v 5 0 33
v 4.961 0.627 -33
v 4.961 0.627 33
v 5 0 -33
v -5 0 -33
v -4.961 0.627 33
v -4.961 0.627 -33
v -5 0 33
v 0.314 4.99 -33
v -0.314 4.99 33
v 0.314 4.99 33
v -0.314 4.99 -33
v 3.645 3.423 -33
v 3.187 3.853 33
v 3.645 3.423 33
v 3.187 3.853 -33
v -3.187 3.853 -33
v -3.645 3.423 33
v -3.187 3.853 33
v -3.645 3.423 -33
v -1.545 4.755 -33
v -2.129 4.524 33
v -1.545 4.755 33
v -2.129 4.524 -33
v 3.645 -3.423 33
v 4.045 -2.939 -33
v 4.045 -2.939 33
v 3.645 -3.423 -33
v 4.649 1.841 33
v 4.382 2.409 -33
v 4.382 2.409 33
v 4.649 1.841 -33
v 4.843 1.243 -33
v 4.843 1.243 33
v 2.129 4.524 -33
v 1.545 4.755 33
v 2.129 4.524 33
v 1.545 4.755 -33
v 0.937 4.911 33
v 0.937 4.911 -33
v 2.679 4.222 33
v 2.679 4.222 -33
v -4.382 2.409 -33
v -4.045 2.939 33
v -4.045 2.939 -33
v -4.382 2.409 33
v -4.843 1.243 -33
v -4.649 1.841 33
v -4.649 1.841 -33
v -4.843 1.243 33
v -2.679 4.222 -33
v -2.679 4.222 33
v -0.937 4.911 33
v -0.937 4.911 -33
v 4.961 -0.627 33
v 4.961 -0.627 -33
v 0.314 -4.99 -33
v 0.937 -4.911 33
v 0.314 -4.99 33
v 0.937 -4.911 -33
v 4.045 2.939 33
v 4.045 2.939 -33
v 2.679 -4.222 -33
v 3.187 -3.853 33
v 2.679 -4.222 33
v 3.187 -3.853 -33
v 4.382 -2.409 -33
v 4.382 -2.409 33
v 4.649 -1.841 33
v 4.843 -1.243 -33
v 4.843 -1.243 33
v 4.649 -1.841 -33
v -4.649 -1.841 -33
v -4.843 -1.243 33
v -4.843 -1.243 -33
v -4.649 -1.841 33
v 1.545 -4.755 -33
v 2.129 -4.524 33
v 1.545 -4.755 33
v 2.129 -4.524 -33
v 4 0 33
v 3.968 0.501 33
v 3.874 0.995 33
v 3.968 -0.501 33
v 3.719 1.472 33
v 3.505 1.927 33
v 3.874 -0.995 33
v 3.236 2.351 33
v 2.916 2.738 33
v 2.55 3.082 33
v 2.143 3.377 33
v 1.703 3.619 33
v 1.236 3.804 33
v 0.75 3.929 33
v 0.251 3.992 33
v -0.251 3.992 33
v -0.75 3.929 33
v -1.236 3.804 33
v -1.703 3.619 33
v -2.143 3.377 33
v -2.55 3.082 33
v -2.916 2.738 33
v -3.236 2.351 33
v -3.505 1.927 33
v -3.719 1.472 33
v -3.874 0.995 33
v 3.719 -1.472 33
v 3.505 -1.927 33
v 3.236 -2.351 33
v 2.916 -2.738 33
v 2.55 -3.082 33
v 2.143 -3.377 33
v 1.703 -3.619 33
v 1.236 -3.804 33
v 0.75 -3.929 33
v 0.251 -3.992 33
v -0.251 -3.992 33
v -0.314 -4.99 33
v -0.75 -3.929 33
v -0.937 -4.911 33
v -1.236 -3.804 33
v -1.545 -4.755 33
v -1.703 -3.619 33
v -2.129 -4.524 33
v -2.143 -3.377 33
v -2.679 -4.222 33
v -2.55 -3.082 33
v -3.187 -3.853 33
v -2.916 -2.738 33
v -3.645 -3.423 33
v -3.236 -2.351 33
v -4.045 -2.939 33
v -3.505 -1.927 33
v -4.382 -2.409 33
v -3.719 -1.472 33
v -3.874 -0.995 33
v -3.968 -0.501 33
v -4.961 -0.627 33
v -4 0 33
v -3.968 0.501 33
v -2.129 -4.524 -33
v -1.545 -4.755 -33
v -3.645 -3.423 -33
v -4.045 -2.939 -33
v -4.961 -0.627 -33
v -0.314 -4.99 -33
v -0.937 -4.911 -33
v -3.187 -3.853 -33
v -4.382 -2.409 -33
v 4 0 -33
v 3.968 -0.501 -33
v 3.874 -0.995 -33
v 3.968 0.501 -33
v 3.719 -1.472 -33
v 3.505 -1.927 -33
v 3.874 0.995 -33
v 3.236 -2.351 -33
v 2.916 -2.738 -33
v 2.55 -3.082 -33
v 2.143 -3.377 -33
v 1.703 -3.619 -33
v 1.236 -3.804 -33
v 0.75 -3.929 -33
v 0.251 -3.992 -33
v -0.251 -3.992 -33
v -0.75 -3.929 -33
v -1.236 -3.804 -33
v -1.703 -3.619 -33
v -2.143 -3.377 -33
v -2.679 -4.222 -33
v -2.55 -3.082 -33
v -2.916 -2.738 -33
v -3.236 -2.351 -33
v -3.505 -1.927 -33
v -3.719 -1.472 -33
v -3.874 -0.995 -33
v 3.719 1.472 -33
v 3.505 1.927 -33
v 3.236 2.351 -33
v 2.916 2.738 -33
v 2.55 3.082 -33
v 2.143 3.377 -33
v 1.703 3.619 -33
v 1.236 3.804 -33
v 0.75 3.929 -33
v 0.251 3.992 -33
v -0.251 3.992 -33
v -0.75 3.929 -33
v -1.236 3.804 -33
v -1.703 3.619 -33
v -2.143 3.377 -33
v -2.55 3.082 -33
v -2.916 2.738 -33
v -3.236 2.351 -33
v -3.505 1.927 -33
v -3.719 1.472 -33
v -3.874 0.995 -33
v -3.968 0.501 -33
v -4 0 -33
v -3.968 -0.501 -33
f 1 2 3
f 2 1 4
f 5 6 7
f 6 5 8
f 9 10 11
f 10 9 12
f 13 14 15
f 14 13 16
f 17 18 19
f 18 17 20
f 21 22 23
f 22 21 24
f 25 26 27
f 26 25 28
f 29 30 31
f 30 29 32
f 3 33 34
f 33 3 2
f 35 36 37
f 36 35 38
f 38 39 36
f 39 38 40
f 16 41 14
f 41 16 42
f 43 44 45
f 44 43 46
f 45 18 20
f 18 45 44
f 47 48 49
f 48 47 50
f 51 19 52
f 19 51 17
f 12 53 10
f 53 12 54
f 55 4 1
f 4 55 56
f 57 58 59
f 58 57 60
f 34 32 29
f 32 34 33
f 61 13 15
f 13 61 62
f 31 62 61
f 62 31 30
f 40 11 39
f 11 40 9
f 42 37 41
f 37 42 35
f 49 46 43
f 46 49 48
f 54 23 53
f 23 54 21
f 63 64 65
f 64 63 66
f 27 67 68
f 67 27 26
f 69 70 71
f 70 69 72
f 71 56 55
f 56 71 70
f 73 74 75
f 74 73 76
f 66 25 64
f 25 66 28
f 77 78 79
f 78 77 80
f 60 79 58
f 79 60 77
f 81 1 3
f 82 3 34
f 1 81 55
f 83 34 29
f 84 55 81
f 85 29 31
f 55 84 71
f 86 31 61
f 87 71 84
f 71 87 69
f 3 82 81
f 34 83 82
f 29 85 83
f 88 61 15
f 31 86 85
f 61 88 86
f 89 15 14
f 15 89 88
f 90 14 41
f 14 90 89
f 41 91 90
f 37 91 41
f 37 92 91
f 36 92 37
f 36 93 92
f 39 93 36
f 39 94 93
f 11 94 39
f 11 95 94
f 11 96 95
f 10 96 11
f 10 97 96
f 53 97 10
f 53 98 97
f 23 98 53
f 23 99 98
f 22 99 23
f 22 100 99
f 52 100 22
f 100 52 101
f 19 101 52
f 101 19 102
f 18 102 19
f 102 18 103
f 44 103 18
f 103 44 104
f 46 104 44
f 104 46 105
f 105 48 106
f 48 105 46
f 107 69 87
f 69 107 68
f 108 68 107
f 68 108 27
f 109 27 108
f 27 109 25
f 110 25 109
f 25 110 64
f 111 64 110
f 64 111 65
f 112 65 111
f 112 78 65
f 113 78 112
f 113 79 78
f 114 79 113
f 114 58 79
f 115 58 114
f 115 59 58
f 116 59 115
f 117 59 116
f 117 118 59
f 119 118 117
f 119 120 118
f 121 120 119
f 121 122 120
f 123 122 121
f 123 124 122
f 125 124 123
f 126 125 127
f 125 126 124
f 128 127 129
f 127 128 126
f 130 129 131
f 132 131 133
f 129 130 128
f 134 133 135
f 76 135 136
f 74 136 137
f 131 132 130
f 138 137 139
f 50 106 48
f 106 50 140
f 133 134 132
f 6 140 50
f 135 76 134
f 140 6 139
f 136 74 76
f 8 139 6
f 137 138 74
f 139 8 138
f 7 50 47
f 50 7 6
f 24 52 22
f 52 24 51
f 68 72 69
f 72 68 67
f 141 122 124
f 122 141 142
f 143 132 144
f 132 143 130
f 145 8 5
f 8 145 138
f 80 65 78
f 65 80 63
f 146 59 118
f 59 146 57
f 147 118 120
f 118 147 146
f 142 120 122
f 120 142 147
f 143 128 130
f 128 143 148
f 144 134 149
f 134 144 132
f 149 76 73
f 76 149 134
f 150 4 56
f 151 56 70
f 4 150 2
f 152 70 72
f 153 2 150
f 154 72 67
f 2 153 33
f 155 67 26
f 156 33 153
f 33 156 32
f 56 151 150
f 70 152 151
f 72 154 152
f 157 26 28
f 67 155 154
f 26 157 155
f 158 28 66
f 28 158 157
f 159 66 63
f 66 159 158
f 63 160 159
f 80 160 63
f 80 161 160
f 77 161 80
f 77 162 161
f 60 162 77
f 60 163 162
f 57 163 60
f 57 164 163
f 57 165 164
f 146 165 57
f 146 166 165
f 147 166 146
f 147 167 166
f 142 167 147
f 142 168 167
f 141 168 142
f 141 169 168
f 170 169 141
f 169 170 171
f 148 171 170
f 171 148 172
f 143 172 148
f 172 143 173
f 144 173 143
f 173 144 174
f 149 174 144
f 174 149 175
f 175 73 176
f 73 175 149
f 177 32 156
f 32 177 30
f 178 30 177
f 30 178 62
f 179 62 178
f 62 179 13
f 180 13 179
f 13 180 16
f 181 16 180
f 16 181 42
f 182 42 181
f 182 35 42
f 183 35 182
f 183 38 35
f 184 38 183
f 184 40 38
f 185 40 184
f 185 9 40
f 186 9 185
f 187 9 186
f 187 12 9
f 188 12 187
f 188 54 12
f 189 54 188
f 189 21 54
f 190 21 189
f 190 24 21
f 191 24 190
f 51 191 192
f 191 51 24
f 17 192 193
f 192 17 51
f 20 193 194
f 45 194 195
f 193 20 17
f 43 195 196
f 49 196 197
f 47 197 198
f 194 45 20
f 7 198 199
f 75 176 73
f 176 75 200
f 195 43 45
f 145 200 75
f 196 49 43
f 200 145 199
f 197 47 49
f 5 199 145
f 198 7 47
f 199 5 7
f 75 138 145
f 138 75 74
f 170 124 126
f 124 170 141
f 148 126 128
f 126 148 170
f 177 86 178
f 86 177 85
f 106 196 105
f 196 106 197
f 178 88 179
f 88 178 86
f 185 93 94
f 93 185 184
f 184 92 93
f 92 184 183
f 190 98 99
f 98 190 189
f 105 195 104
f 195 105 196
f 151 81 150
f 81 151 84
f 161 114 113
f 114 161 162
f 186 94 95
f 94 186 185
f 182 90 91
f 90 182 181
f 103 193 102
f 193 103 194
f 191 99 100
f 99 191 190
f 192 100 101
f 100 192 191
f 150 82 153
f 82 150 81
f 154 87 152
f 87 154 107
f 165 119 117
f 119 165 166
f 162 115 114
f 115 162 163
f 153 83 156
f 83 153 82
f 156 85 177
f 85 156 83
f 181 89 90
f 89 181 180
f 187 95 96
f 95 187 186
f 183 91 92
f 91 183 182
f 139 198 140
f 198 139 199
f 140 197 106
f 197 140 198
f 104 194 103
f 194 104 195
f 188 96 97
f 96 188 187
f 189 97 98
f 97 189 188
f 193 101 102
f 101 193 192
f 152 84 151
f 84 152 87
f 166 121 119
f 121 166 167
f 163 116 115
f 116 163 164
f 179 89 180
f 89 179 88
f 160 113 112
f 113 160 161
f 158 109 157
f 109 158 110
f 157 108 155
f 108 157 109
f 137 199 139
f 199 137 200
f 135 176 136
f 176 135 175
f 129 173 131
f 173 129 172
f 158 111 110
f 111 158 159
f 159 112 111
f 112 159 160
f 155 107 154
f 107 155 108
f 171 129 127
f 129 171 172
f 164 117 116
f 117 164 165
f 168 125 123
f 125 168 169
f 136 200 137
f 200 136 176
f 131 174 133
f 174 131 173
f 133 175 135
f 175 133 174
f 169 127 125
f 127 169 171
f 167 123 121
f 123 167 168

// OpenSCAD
$fn = 50;


difference() {
	union() {
		translate(v = [0, 0, -33.0000000000]) {
			cylinder(h = 66, r = 5.0000000000);
		}
	}
	union() {
		translate(v = [0, 0, -100.0000000000]) {
			cylinder(h = 200, r = 4.0000000000);
		}
	}
}
